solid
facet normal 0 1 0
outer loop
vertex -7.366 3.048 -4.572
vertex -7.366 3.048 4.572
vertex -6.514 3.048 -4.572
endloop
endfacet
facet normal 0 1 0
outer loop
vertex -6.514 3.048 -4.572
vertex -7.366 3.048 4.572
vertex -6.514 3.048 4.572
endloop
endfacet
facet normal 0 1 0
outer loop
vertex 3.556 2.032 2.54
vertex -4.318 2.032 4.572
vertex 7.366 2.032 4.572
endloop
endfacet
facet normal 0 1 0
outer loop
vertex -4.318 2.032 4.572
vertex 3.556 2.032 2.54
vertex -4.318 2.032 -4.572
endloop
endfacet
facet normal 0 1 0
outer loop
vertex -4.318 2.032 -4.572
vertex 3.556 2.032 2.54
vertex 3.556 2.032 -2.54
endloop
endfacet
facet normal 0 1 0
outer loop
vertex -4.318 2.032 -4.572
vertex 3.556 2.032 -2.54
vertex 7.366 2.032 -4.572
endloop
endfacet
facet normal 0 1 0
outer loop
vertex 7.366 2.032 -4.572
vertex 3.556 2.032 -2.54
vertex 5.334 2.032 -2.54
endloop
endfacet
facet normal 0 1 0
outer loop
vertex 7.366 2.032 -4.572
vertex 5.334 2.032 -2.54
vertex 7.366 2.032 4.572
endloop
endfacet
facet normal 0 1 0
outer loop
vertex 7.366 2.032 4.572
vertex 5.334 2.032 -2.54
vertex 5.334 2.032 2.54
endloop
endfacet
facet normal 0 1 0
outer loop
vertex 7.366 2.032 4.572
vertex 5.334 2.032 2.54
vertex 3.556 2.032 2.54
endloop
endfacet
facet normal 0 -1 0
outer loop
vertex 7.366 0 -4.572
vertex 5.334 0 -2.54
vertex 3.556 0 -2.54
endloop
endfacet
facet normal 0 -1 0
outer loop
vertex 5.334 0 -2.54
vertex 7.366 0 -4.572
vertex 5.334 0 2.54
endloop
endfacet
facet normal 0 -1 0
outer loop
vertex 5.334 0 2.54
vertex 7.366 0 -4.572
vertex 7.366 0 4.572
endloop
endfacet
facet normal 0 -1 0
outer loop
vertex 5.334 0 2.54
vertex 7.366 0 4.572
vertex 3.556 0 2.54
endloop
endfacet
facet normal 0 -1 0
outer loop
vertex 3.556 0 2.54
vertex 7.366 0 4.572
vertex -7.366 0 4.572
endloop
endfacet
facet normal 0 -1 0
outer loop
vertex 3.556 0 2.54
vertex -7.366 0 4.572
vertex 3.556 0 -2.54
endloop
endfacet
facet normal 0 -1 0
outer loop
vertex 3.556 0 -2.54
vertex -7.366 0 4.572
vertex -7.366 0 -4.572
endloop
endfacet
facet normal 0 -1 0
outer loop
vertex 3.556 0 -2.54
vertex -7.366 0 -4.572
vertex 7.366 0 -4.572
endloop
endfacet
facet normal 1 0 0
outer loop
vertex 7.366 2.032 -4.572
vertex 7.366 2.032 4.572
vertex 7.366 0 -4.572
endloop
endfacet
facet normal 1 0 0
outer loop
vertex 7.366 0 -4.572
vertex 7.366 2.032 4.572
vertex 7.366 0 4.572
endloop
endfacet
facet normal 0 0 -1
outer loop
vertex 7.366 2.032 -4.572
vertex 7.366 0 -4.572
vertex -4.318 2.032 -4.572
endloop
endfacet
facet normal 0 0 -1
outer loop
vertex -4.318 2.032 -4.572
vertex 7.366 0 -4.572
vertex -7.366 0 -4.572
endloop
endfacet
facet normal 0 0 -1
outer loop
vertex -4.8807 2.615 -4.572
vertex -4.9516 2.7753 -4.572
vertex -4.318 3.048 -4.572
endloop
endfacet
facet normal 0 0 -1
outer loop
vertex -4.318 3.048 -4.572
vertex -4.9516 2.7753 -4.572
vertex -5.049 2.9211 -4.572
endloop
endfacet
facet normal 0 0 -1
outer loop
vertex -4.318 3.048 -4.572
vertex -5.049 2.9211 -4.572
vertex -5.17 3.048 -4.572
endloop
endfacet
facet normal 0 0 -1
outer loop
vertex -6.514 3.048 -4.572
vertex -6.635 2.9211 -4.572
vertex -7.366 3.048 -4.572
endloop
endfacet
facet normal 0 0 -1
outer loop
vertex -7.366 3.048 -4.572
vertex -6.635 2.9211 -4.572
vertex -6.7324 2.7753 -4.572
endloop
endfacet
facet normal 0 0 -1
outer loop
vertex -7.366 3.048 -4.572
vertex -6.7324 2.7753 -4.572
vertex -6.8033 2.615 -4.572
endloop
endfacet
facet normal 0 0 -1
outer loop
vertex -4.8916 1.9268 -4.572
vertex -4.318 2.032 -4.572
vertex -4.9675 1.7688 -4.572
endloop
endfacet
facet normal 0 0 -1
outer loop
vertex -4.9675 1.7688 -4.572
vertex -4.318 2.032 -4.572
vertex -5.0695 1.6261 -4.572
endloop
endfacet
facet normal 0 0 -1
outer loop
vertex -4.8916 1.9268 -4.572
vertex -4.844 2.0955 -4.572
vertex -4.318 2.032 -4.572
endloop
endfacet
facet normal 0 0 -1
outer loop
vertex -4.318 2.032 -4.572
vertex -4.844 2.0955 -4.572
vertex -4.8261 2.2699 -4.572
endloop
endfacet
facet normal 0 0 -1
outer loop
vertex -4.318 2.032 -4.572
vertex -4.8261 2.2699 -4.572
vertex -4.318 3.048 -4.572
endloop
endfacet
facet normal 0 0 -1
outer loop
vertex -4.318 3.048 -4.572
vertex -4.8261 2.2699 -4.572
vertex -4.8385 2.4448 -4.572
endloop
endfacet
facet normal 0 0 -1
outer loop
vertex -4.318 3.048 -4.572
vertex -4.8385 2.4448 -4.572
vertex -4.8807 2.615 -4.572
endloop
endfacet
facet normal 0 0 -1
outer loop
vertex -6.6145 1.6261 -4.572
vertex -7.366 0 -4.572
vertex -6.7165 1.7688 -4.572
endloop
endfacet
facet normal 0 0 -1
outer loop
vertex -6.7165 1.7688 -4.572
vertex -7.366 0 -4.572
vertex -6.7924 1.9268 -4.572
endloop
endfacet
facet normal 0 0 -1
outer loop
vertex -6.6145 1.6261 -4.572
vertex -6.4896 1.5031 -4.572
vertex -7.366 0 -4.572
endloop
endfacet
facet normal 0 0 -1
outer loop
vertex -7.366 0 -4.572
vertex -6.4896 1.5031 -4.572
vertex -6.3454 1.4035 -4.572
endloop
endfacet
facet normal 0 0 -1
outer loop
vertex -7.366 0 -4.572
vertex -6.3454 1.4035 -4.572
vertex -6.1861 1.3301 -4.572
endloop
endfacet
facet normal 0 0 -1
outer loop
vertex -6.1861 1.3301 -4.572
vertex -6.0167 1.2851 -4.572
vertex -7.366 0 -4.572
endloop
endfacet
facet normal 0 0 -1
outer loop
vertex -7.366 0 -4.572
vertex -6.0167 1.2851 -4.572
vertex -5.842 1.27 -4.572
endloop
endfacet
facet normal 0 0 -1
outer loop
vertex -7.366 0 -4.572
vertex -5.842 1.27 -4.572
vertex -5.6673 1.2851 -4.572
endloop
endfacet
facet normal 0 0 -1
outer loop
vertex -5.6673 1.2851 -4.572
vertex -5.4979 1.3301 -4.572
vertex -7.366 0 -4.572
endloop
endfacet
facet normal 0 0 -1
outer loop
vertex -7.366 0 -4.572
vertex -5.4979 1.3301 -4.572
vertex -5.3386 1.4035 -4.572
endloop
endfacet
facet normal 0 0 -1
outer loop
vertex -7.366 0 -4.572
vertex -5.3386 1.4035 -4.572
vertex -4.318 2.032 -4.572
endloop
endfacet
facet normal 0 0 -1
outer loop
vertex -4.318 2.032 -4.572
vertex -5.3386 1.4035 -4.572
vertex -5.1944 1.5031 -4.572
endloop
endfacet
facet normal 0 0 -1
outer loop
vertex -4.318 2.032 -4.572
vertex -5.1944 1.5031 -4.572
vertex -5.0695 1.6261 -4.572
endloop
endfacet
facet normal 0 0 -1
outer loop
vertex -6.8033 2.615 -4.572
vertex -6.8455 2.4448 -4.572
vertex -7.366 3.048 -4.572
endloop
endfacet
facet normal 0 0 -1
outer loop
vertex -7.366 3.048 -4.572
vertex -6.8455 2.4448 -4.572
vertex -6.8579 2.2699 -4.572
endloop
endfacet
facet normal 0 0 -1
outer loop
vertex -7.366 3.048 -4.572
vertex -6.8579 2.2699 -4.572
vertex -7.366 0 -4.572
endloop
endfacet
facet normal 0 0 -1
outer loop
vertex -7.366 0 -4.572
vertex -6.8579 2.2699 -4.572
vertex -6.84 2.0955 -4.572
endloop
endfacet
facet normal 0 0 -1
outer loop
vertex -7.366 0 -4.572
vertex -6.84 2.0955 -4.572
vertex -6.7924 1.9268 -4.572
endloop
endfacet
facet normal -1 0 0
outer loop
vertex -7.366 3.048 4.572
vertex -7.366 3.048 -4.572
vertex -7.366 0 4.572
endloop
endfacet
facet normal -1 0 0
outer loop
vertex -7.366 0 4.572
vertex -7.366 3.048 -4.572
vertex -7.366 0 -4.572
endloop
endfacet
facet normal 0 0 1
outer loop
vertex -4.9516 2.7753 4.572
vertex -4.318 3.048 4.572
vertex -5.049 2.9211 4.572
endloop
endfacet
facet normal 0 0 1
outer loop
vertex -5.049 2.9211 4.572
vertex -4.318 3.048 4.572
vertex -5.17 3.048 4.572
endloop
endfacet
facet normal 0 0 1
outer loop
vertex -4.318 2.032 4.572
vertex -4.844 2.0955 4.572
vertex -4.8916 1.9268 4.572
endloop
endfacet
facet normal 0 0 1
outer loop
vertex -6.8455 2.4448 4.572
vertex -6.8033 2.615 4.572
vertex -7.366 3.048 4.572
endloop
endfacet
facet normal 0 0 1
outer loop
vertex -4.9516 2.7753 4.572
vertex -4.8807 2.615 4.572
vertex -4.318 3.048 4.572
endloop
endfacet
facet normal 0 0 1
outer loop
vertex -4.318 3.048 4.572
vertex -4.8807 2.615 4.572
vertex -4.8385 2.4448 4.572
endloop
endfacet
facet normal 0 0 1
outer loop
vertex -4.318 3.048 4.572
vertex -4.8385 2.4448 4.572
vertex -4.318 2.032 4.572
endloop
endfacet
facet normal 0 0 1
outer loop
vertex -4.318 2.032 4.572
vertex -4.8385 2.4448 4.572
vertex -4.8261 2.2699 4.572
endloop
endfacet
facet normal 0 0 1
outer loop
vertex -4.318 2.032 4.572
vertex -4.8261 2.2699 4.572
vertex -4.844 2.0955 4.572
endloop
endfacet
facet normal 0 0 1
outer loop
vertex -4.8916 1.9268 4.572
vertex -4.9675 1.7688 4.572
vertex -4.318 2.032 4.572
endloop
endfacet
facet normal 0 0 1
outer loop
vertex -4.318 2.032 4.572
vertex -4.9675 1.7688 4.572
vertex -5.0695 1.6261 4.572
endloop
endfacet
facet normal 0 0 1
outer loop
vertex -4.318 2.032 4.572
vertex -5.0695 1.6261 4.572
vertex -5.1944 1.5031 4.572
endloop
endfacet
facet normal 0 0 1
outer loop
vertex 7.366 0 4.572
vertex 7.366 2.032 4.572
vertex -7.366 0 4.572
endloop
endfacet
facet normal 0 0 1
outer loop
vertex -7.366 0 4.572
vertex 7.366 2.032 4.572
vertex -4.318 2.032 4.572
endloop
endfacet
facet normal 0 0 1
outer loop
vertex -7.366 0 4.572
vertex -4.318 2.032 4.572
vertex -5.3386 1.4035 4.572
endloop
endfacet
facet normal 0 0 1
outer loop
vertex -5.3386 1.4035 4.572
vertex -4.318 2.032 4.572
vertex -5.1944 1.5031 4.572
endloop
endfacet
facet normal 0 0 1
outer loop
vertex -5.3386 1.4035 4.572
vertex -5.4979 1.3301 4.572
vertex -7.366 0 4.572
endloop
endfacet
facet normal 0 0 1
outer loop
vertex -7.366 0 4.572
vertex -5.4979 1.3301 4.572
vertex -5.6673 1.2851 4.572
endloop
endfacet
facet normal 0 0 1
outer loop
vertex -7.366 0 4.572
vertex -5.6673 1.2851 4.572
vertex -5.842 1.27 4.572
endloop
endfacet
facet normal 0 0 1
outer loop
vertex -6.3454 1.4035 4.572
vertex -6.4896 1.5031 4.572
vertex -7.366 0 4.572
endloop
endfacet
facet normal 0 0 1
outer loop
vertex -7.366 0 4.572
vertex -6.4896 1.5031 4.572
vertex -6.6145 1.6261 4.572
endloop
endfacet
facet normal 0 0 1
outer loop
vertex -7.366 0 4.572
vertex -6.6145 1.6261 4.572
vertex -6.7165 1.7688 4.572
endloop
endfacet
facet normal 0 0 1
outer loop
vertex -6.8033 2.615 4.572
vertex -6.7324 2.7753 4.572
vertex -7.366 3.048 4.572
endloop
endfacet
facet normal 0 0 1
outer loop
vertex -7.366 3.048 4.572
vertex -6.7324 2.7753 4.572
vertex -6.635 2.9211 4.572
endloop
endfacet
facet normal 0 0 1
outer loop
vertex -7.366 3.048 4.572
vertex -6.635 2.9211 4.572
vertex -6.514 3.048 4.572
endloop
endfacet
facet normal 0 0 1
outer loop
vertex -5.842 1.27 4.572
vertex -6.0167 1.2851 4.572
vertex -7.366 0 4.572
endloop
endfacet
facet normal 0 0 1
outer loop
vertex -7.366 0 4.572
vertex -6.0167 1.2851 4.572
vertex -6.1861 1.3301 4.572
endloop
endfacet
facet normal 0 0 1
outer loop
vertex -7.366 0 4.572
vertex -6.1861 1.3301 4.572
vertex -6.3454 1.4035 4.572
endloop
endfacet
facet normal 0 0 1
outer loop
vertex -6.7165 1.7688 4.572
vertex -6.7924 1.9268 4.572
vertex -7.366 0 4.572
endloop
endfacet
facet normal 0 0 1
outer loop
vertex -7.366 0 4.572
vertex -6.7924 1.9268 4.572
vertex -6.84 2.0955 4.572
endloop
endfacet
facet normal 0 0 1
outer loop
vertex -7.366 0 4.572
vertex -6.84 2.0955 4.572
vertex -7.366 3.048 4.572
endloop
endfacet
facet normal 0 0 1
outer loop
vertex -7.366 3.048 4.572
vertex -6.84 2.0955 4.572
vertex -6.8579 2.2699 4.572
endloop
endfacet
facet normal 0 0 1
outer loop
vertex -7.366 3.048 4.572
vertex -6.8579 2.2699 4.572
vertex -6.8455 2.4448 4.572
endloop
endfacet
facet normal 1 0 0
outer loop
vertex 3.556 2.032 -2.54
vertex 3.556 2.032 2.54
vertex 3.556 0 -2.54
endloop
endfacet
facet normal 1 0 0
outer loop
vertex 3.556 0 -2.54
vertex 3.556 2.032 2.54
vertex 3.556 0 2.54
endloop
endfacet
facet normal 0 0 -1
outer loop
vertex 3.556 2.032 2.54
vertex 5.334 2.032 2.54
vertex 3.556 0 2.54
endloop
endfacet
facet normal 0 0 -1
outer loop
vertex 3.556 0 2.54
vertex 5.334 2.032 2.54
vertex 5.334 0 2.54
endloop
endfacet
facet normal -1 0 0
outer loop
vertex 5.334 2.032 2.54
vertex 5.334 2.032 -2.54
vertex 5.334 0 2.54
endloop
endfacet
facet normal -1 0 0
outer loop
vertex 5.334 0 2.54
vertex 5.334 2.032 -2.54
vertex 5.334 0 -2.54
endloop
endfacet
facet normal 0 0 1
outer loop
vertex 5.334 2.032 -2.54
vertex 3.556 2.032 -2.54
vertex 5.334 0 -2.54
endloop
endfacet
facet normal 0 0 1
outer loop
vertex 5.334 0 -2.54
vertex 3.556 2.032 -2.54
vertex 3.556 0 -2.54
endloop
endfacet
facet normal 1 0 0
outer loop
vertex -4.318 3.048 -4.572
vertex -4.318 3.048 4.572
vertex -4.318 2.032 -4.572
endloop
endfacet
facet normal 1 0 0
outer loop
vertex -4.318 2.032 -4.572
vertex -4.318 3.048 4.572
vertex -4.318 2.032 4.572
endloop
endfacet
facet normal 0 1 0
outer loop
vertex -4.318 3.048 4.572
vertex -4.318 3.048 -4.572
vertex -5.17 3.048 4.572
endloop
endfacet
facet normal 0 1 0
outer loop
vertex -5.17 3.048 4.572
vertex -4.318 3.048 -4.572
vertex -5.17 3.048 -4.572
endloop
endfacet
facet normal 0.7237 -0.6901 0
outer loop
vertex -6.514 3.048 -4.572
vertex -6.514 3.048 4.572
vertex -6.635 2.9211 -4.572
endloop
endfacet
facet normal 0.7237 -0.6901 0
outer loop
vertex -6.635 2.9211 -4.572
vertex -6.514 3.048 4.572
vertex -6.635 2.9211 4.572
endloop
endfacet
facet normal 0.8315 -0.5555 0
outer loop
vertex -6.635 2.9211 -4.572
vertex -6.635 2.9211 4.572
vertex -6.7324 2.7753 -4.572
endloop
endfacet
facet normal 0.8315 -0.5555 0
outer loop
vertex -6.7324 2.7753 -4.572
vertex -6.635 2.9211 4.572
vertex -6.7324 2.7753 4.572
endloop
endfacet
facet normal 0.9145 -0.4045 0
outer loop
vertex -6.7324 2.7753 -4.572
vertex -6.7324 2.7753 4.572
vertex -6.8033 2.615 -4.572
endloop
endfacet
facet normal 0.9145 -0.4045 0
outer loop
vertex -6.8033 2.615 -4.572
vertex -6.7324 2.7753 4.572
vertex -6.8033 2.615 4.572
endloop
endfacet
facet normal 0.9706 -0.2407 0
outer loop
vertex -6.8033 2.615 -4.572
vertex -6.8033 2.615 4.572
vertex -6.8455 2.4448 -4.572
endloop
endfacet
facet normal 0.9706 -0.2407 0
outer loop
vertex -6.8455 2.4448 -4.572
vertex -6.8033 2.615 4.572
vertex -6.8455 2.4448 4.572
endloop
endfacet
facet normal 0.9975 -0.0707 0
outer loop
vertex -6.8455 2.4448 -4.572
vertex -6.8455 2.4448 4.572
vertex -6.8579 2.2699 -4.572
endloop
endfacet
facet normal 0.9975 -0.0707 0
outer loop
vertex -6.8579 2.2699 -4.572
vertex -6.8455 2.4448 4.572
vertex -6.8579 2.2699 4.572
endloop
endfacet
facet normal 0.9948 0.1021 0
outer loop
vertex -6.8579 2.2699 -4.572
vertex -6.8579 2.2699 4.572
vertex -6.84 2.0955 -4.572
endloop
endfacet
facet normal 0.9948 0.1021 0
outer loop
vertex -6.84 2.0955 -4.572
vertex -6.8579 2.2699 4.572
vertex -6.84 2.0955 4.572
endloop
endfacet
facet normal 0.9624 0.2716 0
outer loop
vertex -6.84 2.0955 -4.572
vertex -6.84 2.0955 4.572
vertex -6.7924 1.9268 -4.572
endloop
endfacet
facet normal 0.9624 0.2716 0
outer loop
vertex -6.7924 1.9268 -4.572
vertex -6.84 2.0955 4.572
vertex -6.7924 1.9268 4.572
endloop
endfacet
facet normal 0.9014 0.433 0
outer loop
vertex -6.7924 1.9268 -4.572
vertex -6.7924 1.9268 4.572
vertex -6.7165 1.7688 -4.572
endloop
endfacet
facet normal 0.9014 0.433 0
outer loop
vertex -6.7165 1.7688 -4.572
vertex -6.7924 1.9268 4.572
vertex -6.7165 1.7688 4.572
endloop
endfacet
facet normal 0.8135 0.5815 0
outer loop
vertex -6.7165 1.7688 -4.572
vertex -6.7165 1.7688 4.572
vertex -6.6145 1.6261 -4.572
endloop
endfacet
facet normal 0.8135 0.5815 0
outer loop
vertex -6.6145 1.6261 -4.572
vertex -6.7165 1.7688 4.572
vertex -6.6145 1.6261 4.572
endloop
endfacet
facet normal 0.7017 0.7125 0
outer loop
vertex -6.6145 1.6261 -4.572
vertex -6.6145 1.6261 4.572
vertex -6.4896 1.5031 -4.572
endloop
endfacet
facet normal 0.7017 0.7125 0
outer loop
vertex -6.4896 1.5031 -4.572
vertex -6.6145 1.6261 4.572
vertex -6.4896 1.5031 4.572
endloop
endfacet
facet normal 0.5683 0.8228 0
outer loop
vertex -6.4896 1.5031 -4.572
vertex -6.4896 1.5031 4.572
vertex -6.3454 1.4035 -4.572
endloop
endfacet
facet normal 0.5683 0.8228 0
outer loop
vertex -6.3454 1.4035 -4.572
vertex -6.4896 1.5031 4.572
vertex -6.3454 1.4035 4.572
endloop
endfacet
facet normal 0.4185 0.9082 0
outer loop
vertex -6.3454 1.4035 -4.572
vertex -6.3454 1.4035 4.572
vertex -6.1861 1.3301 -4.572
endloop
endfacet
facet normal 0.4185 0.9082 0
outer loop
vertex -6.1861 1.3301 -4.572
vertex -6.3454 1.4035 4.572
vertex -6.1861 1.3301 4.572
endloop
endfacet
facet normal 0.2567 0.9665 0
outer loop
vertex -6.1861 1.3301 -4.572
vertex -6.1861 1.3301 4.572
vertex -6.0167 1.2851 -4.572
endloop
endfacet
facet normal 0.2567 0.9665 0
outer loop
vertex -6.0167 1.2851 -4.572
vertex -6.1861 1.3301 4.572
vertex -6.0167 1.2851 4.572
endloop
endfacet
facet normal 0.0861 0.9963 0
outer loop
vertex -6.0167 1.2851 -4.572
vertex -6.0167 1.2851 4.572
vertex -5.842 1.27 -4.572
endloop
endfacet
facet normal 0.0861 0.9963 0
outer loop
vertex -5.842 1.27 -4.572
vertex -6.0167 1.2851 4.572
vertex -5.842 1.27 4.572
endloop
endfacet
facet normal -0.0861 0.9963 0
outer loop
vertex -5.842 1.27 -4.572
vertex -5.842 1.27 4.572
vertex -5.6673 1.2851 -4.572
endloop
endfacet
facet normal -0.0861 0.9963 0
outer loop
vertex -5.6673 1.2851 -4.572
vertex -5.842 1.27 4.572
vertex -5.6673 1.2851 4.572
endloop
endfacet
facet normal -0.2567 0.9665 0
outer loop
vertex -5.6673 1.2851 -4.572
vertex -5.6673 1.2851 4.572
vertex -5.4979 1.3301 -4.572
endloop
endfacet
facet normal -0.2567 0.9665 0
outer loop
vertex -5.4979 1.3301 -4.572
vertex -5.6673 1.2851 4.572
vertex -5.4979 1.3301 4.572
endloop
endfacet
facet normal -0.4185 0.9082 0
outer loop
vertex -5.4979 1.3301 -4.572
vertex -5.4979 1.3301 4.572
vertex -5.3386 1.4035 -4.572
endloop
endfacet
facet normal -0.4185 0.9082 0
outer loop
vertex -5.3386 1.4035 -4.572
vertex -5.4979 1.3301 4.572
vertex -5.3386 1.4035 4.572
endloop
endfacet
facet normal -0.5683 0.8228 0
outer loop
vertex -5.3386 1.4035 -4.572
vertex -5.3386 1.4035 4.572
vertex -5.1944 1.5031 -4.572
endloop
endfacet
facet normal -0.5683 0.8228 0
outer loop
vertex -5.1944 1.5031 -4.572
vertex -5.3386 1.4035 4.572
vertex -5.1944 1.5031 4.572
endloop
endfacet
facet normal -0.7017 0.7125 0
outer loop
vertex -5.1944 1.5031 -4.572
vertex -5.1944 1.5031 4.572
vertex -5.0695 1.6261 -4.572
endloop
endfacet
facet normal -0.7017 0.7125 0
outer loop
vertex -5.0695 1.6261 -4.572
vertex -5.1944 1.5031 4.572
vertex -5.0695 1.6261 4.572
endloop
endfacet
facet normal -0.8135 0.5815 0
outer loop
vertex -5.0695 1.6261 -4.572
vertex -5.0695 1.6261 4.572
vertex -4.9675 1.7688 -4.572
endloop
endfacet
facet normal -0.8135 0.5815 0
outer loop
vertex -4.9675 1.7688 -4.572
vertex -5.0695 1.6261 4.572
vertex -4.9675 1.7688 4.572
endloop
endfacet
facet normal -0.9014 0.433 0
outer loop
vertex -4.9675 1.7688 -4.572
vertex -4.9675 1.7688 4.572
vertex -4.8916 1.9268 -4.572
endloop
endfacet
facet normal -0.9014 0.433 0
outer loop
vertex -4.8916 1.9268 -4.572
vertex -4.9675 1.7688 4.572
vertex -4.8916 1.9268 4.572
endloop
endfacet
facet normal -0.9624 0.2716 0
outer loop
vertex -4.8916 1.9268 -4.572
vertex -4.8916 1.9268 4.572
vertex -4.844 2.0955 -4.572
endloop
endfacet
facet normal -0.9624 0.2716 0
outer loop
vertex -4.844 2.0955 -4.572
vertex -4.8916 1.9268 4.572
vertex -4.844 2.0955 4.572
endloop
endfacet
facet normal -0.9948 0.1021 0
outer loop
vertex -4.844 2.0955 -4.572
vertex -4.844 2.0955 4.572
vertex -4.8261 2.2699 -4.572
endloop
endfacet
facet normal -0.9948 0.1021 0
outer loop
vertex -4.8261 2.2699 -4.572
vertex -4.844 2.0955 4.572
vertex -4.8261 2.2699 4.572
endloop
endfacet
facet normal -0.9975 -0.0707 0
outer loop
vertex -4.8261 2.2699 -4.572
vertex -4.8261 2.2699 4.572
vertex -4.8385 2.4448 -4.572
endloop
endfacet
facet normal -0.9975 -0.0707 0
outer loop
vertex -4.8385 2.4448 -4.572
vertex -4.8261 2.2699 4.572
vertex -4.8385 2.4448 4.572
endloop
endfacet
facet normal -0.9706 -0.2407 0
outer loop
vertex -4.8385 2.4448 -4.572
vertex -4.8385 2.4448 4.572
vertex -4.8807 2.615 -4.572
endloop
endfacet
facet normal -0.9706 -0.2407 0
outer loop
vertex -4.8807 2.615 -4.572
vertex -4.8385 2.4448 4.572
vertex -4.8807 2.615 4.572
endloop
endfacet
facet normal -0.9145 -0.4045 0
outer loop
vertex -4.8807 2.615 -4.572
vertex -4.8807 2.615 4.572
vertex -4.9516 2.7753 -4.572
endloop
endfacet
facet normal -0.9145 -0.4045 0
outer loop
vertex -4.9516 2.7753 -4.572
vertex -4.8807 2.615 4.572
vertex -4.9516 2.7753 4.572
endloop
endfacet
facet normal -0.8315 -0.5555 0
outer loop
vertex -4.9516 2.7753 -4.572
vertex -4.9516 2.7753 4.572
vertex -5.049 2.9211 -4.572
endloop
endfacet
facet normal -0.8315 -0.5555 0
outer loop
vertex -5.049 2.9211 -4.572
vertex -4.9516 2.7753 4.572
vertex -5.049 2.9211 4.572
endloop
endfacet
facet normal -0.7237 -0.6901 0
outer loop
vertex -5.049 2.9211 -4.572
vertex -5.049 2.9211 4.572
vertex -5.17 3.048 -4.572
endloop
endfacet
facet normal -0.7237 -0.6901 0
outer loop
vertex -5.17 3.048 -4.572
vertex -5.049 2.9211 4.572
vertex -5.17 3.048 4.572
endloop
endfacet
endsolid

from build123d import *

# Parameters (mm, degrees)
SKETCH1_W           = 14.732
SKETCH1_H           = 9.144
SKETCH1_W_2         = 1.778
SKETCH1_H_2         = 5.08
BOSS_EXTRUDE1_DEPTH = 2.032
SKETCH2_W           = 3.048
SKETCH2_H           = 9.144
BOSS_EXTRUDE2_DEPTH = 1.016
SKETCH3_R           = 1.016
CUT_EXTRUDE1_DEPTH  = 10.144


with BuildPart() as part:
    # Sketch1 → Boss-Extrude1 (new body)
    with BuildSketch(Plane(origin=(0, 0, 0), x_dir=(1, 0, 0), z_dir=(0, 1, 0))):
        Rectangle(SKETCH1_W, SKETCH1_H)
        with Locations((4.445, 0)):
            Rectangle(SKETCH1_W_2, SKETCH1_H_2, mode=Mode.SUBTRACT)
    extrude(amount=BOSS_EXTRUDE1_DEPTH)

    # Sketch2 → Boss-Extrude2 (add)
    with BuildSketch(Plane(origin=(0, 2.032, 0), x_dir=(1, 0, 0), z_dir=(0, 1, 0))):
        with Locations((-5.842, 0)):
            Rectangle(SKETCH2_W, SKETCH2_H)
    extrude(amount=BOSS_EXTRUDE2_DEPTH)

    # Sketch3 → Cut-Extrude1 (cut, through all)
    with BuildSketch(Plane.XY.offset(4.572)):
        with Locations((-5.842, 2.286)):
            Circle(SKETCH3_R)
    extrude(amount=-CUT_EXTRUDE1_DEPTH, mode=Mode.SUBTRACT)


solid = part.part
